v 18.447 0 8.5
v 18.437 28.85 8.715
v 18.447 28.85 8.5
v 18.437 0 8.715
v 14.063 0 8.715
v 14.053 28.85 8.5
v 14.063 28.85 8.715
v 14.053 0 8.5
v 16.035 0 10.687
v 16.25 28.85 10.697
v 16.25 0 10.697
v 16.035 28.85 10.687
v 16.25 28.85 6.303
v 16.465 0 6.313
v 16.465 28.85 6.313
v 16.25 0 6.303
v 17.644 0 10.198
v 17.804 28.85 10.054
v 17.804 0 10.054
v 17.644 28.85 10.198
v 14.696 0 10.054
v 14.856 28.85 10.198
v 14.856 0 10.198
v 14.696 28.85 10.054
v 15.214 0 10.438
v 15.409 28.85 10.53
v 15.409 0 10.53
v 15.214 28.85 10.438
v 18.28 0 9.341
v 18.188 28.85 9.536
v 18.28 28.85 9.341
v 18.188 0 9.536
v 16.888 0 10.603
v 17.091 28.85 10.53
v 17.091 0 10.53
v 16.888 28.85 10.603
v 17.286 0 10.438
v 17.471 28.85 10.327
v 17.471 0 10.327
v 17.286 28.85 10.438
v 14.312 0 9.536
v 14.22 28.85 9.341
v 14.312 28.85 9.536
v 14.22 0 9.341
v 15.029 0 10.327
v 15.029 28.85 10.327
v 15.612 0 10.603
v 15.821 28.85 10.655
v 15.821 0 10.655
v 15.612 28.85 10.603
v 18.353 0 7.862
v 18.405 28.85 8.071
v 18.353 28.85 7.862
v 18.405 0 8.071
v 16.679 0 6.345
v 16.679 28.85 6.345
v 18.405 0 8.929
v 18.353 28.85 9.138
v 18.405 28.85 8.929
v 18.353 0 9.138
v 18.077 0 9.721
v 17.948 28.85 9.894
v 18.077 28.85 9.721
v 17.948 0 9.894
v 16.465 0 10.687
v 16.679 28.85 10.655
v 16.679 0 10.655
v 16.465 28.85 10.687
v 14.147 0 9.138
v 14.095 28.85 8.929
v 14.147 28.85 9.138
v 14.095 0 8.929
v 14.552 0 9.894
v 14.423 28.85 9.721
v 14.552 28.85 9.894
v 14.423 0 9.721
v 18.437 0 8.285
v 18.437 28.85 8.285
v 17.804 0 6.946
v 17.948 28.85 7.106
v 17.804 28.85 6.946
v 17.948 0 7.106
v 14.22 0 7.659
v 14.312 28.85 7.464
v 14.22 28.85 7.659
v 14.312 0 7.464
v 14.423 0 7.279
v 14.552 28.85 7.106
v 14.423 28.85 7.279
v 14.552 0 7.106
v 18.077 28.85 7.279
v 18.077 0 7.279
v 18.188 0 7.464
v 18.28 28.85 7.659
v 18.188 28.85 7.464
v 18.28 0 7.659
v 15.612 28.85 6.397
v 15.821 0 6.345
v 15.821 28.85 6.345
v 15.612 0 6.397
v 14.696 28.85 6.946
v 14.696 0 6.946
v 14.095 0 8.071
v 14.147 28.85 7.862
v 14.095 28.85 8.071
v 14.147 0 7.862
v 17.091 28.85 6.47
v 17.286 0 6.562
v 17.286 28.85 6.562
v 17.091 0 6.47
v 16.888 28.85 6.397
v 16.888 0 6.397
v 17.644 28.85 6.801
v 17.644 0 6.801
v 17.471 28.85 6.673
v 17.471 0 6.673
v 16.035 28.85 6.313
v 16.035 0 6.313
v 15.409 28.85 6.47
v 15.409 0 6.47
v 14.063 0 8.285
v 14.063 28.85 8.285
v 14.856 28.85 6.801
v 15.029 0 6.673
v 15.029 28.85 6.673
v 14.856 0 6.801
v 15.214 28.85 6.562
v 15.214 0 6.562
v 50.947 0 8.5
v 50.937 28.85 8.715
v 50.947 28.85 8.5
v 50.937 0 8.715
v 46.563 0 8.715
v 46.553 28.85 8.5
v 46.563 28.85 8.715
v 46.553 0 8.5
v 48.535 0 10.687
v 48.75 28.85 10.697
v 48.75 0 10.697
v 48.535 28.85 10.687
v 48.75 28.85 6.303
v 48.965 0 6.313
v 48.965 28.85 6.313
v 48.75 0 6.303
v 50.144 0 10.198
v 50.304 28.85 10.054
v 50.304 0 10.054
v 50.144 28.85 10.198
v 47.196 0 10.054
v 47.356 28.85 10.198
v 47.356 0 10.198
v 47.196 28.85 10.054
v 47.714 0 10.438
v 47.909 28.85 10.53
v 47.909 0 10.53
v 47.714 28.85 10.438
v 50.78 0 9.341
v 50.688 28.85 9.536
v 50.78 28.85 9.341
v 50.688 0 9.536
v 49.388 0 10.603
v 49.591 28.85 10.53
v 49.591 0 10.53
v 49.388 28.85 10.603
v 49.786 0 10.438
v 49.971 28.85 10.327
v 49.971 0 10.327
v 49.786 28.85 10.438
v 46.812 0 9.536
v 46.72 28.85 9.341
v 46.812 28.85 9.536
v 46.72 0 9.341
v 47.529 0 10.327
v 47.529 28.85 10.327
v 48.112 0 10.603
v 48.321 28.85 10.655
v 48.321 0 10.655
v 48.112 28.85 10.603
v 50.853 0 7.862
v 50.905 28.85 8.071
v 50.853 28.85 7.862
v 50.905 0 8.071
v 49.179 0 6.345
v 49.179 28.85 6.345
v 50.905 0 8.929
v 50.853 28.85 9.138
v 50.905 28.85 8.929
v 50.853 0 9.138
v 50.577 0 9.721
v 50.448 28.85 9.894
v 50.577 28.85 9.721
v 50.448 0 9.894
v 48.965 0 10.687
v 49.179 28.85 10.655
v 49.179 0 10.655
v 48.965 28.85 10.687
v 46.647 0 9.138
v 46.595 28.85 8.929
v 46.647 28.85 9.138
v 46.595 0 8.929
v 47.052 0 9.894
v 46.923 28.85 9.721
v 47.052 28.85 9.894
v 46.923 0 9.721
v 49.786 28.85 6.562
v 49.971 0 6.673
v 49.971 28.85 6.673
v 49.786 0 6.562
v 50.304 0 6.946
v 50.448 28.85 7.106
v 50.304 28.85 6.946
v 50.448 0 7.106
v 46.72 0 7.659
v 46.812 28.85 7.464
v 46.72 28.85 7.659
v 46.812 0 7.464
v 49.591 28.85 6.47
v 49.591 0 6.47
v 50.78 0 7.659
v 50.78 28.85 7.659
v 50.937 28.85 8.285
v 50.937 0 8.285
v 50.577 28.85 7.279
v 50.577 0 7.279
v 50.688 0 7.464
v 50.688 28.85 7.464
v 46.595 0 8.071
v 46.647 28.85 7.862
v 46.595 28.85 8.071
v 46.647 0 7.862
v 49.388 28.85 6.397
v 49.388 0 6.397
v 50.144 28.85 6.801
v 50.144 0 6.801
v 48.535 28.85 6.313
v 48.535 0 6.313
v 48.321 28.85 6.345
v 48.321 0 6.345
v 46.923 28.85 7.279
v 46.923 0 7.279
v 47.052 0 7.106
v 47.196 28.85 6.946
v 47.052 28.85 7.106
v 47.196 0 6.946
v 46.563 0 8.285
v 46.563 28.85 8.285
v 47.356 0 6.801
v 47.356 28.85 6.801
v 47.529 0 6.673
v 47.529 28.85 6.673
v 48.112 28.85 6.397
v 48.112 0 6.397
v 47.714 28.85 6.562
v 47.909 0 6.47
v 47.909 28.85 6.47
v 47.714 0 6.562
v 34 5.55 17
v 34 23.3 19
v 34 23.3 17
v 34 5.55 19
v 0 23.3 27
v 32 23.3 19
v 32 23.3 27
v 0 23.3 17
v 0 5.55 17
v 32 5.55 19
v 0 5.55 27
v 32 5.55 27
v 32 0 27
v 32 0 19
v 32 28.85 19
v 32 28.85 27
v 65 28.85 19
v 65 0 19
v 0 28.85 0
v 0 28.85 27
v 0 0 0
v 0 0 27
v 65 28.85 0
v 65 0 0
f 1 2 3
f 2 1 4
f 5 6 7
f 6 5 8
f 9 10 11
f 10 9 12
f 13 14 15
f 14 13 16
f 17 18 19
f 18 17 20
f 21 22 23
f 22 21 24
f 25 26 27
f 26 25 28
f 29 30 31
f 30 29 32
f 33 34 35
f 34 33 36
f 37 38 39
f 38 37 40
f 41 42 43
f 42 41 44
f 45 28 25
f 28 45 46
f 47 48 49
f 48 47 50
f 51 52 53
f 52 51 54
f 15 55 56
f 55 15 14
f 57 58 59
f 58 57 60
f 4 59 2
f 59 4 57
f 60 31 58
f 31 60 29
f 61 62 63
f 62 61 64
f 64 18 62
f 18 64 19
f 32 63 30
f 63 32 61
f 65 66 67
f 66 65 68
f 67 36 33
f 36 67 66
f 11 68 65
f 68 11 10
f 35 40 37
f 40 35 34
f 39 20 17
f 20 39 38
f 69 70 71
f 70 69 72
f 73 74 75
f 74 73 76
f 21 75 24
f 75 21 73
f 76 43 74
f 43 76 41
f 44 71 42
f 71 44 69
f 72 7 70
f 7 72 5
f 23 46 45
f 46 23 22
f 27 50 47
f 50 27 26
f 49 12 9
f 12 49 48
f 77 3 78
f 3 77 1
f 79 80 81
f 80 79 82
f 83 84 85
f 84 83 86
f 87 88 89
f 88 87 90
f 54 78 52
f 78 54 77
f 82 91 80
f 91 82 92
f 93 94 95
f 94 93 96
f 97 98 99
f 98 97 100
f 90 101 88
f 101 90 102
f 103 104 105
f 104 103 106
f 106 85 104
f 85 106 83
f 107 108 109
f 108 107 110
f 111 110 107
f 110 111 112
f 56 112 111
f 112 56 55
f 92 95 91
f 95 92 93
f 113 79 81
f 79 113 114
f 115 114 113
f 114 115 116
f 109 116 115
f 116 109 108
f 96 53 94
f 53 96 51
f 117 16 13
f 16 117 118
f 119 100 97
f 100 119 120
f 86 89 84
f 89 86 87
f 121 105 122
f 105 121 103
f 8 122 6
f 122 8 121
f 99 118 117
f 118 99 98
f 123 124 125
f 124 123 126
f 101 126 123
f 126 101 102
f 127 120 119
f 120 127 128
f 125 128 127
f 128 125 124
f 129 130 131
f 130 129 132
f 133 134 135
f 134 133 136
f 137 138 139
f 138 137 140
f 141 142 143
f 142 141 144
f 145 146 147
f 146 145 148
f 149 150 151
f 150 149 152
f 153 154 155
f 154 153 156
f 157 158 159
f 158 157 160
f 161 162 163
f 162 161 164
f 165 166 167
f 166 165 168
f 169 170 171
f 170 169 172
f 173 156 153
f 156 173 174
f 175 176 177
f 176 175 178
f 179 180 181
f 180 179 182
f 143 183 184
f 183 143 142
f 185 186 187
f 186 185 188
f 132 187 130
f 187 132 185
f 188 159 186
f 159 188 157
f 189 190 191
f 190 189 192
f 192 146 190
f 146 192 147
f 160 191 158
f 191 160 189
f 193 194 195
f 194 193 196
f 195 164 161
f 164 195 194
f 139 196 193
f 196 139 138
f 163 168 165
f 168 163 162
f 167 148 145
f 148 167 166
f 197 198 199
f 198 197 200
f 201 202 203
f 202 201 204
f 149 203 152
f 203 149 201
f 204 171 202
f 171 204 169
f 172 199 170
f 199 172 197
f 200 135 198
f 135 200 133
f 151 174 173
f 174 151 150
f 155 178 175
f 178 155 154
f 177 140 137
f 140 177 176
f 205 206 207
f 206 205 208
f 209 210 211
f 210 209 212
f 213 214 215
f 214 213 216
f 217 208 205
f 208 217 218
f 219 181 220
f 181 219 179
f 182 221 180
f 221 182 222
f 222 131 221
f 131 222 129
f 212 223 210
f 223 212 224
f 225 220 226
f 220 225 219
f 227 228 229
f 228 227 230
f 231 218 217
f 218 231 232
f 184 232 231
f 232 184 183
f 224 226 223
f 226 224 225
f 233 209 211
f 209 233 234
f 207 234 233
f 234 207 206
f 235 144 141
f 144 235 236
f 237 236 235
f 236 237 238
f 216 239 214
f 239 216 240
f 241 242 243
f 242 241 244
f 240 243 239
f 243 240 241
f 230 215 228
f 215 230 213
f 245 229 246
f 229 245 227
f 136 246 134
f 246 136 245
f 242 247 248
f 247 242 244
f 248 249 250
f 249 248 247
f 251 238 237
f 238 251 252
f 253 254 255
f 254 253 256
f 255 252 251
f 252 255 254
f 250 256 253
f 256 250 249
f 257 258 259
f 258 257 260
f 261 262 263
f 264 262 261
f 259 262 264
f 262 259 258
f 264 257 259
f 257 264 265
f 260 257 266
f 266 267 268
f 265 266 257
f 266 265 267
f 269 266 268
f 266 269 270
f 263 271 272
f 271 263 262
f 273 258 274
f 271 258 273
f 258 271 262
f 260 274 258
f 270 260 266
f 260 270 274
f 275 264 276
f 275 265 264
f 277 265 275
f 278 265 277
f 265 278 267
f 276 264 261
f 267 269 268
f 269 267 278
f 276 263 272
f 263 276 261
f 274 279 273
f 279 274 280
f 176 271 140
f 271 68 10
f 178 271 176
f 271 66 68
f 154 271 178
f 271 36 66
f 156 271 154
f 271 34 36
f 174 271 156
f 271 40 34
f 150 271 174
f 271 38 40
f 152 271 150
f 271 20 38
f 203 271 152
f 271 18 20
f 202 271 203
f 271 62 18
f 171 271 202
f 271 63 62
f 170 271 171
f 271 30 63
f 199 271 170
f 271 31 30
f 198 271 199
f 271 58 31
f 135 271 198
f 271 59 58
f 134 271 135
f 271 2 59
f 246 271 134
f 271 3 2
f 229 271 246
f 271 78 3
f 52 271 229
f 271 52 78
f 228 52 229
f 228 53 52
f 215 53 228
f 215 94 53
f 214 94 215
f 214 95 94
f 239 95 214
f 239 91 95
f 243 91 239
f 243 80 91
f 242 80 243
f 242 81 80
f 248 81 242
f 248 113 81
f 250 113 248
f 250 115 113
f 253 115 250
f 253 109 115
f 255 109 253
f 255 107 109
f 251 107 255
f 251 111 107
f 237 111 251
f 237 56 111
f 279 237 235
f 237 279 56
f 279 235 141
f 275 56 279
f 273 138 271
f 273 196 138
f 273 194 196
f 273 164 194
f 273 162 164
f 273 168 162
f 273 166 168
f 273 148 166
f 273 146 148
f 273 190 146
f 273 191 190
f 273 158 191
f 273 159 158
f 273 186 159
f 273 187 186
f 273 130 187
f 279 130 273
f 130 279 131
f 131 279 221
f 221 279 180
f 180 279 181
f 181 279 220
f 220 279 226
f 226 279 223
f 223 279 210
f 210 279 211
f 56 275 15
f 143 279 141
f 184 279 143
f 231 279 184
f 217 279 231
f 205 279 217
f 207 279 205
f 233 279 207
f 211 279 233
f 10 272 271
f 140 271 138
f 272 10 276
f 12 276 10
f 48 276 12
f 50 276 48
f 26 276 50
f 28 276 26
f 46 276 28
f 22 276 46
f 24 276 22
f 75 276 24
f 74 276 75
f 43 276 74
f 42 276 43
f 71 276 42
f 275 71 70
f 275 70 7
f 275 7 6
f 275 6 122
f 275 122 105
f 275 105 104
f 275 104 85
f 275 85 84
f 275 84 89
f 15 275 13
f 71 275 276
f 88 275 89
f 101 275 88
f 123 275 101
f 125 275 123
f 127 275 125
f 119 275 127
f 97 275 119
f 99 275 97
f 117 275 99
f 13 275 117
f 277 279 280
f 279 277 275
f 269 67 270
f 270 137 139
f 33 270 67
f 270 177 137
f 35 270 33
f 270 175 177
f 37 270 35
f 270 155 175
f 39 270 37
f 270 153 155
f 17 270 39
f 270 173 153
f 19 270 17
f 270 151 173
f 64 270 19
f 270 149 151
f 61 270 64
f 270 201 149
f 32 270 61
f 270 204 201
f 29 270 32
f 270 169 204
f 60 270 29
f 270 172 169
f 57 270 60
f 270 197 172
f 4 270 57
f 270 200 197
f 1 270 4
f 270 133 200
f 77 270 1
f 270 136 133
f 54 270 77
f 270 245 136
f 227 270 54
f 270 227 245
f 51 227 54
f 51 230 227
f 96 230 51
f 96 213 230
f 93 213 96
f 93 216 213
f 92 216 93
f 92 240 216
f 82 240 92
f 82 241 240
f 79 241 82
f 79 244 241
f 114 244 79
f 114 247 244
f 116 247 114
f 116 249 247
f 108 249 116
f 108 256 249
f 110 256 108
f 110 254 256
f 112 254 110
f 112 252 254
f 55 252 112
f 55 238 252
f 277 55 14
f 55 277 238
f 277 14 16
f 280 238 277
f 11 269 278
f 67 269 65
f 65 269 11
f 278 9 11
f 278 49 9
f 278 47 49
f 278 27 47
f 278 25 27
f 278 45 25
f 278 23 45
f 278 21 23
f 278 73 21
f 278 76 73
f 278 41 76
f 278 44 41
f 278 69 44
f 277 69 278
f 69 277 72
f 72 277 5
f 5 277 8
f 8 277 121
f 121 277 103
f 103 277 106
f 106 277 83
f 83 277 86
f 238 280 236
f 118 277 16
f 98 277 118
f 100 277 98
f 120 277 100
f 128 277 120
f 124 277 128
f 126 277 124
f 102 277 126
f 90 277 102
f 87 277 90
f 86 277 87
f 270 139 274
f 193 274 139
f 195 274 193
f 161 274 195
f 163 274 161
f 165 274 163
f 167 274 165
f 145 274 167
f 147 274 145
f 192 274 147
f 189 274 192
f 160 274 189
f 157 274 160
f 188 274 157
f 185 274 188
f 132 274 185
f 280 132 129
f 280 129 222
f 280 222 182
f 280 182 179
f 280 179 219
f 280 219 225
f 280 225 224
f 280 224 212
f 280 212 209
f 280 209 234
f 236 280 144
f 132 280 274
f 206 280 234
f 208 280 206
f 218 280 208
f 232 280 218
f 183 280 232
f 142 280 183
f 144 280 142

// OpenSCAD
// raise for higher detail
$fn = 64;

module fillet(r, h) {
    translate([r / 2, r / 2, 0])

        difference() {
            cube([r + 0.01, r + 0.01, h], center = true);

            translate([r / 2, r / 2, 0])
                cylinder(r = r, h = h + 1, center = true);

        }
}

difference() {
    union() {
        translate([65 / 2, 28.85 / 2, 27 / 2])
            cube([65, 28.85, 27], center = true);
    }

    union() {
        translate([35 / 2 - 1, 28.85 / 2, (11 / 2) + 27 - 10])
            cube([35, 17.75, 11], center = true);
        translate([65 - 34 / 2 + 1, 28.85 / 2, ((11 - 2) / 2) + (27 - 10) + 2])
            cube([34, 30.85, 11 - 2], center = true);
 
        // #8 screw holes
        translate([16.25, 30.85 / 2 - 1, 8.5]) {
            rotate([90, 0, 0]) {
                translate([0, 0, 0]) {
                    #cylinder(d = ((0.9927 * 4.064) + 0.3602), h = 30.85, center = true);
                }
                translate([16.25 * 2, 0, 0]) {
                    #cylinder(d = ((0.9927 * 4.064) + 0.3602), h = 30.85, center = true);
                }
            }
        }
    }
}
